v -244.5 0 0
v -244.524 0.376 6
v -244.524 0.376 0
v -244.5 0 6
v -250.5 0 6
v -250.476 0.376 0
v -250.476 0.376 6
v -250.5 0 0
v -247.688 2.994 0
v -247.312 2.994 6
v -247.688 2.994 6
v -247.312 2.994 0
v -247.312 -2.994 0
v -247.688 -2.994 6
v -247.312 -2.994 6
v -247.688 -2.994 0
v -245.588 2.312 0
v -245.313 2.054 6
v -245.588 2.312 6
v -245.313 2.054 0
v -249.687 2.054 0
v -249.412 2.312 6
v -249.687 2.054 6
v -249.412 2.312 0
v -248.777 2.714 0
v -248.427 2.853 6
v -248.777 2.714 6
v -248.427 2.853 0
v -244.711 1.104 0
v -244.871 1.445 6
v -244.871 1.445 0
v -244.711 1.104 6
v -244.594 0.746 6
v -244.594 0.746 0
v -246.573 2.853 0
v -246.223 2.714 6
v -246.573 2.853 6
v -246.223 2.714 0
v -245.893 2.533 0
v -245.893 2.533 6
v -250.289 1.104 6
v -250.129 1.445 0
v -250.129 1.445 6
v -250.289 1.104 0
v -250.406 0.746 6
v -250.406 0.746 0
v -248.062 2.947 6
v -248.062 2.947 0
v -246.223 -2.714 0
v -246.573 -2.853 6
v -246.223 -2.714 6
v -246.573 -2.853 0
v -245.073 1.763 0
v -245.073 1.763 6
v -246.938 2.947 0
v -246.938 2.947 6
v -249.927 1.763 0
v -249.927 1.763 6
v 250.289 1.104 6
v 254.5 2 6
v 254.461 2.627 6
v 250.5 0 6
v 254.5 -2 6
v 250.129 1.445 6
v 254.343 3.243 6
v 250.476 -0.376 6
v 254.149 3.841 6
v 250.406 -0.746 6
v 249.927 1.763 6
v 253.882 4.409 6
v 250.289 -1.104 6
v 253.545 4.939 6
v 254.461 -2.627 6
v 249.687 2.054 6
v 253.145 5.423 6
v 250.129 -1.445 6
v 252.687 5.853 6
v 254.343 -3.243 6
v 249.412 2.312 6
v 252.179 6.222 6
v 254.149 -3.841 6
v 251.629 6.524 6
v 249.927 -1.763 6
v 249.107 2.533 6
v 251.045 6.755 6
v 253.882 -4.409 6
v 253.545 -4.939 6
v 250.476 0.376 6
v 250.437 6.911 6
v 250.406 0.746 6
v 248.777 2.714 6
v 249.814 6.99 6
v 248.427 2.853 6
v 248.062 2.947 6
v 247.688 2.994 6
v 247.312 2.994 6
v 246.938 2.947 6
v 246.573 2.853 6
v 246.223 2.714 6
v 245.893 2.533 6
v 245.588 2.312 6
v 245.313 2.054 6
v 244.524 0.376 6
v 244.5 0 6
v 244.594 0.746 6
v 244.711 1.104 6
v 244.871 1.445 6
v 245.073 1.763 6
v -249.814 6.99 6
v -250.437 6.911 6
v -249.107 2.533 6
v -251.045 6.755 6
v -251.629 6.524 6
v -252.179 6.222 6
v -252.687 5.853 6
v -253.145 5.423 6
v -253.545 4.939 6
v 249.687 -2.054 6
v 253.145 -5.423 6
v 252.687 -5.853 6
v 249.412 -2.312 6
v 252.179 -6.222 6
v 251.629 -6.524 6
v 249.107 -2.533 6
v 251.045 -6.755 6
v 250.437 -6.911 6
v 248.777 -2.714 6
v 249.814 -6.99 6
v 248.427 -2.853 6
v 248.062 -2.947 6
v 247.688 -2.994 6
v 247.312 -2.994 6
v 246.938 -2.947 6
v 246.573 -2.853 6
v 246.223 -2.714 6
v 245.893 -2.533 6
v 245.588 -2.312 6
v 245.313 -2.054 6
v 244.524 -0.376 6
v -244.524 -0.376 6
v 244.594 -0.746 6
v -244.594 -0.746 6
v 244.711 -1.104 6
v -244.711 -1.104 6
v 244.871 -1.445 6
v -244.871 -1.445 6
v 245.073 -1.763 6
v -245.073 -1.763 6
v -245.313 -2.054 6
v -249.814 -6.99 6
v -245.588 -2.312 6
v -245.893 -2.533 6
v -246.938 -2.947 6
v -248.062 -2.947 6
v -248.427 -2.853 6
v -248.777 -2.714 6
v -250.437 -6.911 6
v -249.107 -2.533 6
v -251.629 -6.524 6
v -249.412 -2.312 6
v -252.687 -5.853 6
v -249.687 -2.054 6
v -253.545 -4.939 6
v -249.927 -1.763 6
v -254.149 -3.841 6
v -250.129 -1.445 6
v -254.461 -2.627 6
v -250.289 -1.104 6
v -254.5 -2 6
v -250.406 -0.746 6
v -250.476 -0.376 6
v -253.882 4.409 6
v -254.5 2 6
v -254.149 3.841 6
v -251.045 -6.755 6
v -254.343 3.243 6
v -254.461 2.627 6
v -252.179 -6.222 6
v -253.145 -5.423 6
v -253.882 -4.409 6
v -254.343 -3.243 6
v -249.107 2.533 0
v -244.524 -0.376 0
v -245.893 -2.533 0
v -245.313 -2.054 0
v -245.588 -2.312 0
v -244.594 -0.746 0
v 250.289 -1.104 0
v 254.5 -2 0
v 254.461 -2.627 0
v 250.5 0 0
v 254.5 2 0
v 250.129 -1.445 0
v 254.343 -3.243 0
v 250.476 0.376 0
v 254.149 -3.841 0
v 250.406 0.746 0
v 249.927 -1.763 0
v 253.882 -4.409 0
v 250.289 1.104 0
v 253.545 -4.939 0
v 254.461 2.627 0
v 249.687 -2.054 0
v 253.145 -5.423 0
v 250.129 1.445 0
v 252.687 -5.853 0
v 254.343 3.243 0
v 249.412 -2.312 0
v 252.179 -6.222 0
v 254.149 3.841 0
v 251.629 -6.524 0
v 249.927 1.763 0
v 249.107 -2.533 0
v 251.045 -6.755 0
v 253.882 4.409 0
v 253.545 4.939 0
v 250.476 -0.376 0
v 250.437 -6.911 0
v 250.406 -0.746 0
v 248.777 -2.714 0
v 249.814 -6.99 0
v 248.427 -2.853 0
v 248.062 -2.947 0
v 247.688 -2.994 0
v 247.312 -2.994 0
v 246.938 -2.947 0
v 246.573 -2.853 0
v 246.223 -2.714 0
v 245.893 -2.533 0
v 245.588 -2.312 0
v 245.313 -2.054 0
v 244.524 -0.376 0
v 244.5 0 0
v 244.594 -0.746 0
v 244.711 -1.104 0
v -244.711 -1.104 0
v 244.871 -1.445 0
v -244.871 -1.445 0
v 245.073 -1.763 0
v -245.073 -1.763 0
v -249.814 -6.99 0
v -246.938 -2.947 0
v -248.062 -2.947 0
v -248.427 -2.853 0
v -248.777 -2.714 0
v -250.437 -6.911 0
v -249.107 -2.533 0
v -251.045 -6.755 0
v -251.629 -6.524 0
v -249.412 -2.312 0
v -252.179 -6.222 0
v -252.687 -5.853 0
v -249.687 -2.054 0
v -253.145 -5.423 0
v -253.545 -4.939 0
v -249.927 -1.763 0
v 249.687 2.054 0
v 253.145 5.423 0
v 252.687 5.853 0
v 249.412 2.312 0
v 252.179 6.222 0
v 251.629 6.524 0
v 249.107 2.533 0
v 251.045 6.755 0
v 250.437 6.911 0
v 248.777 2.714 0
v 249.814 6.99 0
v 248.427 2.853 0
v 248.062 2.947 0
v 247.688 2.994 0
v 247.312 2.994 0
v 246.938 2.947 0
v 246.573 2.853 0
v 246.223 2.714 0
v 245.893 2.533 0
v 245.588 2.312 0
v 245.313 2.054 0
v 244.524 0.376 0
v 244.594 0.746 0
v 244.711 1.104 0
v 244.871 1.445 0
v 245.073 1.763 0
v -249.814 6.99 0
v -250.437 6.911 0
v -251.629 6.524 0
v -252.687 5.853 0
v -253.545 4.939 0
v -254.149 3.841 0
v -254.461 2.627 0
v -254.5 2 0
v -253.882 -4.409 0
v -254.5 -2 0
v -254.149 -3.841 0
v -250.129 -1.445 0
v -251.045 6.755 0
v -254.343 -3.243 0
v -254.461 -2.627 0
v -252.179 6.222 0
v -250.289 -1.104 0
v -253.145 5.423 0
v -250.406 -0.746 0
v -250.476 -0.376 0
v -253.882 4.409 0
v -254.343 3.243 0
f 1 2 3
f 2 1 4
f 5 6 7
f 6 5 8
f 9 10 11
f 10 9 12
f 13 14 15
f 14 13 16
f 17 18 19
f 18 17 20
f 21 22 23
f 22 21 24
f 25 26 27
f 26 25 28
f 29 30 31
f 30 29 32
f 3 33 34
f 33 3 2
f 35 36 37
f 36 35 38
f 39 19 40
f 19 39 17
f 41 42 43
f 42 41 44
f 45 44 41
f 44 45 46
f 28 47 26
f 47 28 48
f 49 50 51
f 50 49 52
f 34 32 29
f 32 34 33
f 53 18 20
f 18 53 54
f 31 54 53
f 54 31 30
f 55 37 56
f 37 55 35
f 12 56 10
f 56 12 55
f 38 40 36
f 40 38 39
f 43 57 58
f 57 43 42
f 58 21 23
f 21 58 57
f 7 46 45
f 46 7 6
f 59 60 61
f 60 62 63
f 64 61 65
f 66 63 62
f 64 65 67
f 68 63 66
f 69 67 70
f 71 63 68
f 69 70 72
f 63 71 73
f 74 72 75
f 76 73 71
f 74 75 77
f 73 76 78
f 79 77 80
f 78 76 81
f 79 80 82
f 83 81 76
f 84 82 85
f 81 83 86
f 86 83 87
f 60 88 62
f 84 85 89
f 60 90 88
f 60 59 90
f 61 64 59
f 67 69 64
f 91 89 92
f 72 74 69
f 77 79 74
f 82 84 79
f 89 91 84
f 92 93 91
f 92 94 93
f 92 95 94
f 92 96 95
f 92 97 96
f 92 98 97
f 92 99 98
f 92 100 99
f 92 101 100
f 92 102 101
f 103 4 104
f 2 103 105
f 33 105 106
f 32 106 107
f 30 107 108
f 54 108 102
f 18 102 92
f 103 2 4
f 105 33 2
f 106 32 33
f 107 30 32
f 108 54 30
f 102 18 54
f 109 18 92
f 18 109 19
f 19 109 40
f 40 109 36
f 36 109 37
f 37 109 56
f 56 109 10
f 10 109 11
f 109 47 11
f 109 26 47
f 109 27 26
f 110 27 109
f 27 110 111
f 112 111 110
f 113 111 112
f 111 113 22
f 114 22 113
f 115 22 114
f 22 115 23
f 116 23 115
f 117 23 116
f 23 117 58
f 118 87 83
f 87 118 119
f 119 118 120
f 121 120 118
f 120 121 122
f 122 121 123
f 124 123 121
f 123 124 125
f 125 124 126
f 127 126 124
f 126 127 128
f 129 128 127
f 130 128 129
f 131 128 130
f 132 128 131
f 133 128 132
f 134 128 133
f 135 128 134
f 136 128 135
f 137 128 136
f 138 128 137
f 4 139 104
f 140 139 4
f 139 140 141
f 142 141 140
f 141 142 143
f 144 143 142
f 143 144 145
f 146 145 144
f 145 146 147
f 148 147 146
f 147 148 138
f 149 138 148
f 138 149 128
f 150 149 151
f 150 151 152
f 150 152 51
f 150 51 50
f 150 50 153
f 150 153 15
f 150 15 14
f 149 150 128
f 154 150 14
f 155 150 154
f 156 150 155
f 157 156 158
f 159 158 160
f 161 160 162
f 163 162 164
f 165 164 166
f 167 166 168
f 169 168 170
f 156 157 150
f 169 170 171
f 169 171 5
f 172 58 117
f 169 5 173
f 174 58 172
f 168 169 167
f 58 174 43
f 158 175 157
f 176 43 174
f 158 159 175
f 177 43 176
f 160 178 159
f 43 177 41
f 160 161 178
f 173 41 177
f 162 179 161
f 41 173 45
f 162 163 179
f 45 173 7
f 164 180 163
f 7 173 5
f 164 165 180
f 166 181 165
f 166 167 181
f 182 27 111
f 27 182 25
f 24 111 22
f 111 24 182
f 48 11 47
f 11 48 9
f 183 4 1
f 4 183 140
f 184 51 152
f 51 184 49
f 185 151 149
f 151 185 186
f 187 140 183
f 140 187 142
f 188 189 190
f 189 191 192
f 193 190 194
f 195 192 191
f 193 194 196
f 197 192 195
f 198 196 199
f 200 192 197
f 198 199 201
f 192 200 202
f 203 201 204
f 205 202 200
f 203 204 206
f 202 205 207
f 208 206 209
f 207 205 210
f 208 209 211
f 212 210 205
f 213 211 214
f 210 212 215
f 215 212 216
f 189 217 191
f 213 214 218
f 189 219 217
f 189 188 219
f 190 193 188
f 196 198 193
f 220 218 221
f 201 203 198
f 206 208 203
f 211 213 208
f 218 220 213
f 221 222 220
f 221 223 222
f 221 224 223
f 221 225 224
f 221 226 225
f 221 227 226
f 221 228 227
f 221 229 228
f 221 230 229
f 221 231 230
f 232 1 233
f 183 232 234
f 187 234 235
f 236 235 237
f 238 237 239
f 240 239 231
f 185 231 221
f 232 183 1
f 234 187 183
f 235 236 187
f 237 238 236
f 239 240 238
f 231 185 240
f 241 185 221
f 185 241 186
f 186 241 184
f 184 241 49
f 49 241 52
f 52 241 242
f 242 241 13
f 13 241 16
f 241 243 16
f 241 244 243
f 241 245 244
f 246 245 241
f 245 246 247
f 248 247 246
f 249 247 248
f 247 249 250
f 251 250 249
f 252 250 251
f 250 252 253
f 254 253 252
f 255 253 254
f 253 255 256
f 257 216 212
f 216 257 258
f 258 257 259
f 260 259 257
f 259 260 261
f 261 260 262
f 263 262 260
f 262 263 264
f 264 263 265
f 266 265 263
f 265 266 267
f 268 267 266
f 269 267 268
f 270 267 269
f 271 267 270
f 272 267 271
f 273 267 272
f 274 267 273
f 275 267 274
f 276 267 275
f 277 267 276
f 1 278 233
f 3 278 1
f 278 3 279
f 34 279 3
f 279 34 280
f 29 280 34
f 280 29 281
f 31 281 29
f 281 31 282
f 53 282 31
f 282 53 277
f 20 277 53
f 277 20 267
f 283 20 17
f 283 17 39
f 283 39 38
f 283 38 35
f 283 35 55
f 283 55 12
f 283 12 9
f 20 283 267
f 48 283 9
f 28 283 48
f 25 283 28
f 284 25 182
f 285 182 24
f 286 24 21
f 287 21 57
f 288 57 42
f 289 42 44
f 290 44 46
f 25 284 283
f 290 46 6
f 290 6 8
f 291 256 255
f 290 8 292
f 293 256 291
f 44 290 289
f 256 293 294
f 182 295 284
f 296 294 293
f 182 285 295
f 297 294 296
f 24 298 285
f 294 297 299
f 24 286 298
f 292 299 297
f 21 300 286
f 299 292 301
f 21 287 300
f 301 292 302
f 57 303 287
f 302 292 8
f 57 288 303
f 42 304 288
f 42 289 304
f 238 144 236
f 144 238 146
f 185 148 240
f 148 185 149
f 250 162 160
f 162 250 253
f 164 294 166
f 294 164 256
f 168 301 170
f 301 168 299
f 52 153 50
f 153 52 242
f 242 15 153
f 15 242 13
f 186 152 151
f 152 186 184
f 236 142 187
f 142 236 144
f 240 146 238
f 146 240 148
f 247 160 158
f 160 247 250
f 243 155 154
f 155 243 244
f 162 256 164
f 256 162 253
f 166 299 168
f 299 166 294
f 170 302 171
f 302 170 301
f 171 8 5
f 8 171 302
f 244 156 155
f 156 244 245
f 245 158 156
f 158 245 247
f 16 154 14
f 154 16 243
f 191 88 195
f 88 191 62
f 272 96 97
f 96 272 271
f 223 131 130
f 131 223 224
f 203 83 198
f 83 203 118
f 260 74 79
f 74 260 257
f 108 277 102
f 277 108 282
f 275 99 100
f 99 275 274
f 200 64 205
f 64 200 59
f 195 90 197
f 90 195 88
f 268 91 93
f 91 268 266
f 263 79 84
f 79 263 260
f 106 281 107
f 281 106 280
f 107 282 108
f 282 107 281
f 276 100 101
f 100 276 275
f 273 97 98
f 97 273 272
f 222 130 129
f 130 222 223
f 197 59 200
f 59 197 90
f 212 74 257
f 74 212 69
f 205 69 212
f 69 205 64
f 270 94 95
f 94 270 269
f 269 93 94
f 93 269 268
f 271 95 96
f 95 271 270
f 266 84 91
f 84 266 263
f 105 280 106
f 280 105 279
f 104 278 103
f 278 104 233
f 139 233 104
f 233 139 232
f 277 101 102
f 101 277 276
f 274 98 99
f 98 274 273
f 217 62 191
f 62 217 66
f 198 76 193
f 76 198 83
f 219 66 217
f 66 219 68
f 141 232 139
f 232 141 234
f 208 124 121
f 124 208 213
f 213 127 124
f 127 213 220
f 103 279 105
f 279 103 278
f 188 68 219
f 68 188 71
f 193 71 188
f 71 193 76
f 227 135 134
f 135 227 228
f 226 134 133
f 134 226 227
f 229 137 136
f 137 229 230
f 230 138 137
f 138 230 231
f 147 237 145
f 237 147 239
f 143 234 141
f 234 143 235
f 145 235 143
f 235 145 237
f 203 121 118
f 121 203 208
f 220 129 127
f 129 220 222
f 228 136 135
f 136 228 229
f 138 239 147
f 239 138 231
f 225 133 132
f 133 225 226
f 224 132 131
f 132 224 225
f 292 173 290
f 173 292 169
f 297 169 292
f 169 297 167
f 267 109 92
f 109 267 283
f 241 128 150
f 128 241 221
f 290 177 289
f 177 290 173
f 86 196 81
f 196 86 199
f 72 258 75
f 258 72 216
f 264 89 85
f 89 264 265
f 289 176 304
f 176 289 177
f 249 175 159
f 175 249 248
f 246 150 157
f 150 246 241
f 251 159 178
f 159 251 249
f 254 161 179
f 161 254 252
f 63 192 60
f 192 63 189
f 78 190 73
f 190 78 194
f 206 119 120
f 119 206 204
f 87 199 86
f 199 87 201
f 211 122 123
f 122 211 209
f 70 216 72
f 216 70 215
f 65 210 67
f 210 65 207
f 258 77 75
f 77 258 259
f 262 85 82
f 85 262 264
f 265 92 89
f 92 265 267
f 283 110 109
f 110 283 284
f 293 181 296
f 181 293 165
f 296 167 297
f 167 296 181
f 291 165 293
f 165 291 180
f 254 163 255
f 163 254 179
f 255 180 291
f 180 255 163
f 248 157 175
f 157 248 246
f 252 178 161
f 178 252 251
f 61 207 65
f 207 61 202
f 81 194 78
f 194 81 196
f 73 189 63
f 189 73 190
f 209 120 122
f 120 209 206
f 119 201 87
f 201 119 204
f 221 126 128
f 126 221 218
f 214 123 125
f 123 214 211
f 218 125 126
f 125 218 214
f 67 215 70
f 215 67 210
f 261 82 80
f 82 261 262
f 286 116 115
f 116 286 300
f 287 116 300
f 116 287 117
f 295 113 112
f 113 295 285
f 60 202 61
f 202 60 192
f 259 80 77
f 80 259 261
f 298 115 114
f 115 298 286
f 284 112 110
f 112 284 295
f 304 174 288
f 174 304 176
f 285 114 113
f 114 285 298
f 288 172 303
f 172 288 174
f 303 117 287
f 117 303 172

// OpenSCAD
$fn = 50;


difference() {
	union() {
		hull() {
			translate(v = [-249.5000000000, 2.0000000000, 0]) {
				cylinder(h = 6, r = 5);
			}
			translate(v = [249.5000000000, 2.0000000000, 0]) {
				cylinder(h = 6, r = 5);
			}
			translate(v = [-249.5000000000, -2.0000000000, 0]) {
				cylinder(h = 6, r = 5);
			}
			translate(v = [249.5000000000, -2.0000000000, 0]) {
				cylinder(h = 6, r = 5);
			}
		}
	}
	union() {
		translate(v = [-247.5000000000, 0.0000000000, 0]) {
			cylinder(h = 6, r = 3.0000000000);
		}
		translate(v = [247.5000000000, 0.0000000000, 0]) {
			cylinder(h = 6, r = 3.0000000000);
		}
		translate(v = [-247.5000000000, 0.0000000000, 0]) {
			cylinder(h = 6, r = 1.5000000000);
		}
		translate(v = [247.5000000000, 0.0000000000, 0]) {
			cylinder(h = 6, r = 1.5000000000);
		}
		translate(v = [-247.5000000000, 0.0000000000, 0]) {
			cylinder(h = 6, r = 1.5000000000);
		}
		translate(v = [247.5000000000, 0.0000000000, 0]) {
			cylinder(h = 6, r = 1.5000000000);
		}
		translate(v = [-247.5000000000, 0.0000000000, 0]) {
			cylinder(h = 6, r = 1.5000000000);
		}
		translate(v = [247.5000000000, 0.0000000000, 0]) {
			cylinder(h = 6, r = 1.5000000000);
		}
	}
}
